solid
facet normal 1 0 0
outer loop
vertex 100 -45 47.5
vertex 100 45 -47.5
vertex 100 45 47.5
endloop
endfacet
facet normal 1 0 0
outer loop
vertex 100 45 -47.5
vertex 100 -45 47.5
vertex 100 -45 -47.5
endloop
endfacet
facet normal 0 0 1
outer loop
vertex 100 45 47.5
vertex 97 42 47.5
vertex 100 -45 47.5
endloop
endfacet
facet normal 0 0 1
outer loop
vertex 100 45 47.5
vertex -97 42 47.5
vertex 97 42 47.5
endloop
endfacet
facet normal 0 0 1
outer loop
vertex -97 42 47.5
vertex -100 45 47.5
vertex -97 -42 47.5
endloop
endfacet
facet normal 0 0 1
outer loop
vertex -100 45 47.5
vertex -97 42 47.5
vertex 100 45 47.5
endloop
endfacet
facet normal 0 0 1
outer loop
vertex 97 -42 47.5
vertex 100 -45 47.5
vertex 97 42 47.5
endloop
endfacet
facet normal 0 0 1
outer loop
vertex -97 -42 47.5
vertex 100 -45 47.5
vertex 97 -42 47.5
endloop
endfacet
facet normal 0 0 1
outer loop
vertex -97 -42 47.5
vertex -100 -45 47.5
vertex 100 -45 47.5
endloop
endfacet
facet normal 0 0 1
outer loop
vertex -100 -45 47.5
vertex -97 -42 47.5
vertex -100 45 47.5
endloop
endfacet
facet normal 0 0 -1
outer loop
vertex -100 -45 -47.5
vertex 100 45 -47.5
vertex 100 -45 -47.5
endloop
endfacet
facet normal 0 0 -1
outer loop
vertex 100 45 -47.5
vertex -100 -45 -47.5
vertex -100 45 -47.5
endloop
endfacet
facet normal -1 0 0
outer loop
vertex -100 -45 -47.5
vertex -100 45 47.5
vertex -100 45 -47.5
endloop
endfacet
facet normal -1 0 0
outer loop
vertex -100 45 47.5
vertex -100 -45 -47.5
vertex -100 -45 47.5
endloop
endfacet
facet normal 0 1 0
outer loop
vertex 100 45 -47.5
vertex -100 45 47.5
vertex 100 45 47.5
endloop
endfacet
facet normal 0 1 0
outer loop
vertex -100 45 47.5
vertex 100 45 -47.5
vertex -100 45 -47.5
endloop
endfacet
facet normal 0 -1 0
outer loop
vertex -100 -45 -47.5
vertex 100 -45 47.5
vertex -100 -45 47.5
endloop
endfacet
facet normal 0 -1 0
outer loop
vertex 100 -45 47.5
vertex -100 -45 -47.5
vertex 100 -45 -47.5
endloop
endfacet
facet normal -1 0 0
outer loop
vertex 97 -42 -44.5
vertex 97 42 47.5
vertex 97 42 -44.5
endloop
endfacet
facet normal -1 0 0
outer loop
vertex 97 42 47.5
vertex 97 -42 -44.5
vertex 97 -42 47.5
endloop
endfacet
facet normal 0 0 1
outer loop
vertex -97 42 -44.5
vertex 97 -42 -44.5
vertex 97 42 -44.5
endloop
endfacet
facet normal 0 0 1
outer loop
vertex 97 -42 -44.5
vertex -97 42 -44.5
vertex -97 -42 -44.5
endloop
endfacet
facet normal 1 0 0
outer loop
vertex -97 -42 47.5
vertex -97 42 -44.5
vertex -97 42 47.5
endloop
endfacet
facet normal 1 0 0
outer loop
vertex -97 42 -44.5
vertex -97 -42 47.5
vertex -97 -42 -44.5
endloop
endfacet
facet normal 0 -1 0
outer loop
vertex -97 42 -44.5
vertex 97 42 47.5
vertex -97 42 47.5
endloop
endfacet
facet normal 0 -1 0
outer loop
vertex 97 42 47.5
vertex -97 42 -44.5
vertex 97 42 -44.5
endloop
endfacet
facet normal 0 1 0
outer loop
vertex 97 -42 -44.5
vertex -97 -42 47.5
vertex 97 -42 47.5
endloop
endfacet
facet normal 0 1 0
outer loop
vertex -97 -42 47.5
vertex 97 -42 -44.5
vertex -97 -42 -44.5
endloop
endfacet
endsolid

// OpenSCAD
// ========================================
// a 200 x 90 x 95 mm enclosure with 3 mm wall thickness
// NeuroCAD canonical IR; dimensions are millimetres
// ========================================
$fn = 48;

difference() {
  cube(size=[200, 90, 95], center=true);
  translate([0, 0, 1.6]) {
    cube(size=[194, 84, 92.2], center=true);
  }
}
